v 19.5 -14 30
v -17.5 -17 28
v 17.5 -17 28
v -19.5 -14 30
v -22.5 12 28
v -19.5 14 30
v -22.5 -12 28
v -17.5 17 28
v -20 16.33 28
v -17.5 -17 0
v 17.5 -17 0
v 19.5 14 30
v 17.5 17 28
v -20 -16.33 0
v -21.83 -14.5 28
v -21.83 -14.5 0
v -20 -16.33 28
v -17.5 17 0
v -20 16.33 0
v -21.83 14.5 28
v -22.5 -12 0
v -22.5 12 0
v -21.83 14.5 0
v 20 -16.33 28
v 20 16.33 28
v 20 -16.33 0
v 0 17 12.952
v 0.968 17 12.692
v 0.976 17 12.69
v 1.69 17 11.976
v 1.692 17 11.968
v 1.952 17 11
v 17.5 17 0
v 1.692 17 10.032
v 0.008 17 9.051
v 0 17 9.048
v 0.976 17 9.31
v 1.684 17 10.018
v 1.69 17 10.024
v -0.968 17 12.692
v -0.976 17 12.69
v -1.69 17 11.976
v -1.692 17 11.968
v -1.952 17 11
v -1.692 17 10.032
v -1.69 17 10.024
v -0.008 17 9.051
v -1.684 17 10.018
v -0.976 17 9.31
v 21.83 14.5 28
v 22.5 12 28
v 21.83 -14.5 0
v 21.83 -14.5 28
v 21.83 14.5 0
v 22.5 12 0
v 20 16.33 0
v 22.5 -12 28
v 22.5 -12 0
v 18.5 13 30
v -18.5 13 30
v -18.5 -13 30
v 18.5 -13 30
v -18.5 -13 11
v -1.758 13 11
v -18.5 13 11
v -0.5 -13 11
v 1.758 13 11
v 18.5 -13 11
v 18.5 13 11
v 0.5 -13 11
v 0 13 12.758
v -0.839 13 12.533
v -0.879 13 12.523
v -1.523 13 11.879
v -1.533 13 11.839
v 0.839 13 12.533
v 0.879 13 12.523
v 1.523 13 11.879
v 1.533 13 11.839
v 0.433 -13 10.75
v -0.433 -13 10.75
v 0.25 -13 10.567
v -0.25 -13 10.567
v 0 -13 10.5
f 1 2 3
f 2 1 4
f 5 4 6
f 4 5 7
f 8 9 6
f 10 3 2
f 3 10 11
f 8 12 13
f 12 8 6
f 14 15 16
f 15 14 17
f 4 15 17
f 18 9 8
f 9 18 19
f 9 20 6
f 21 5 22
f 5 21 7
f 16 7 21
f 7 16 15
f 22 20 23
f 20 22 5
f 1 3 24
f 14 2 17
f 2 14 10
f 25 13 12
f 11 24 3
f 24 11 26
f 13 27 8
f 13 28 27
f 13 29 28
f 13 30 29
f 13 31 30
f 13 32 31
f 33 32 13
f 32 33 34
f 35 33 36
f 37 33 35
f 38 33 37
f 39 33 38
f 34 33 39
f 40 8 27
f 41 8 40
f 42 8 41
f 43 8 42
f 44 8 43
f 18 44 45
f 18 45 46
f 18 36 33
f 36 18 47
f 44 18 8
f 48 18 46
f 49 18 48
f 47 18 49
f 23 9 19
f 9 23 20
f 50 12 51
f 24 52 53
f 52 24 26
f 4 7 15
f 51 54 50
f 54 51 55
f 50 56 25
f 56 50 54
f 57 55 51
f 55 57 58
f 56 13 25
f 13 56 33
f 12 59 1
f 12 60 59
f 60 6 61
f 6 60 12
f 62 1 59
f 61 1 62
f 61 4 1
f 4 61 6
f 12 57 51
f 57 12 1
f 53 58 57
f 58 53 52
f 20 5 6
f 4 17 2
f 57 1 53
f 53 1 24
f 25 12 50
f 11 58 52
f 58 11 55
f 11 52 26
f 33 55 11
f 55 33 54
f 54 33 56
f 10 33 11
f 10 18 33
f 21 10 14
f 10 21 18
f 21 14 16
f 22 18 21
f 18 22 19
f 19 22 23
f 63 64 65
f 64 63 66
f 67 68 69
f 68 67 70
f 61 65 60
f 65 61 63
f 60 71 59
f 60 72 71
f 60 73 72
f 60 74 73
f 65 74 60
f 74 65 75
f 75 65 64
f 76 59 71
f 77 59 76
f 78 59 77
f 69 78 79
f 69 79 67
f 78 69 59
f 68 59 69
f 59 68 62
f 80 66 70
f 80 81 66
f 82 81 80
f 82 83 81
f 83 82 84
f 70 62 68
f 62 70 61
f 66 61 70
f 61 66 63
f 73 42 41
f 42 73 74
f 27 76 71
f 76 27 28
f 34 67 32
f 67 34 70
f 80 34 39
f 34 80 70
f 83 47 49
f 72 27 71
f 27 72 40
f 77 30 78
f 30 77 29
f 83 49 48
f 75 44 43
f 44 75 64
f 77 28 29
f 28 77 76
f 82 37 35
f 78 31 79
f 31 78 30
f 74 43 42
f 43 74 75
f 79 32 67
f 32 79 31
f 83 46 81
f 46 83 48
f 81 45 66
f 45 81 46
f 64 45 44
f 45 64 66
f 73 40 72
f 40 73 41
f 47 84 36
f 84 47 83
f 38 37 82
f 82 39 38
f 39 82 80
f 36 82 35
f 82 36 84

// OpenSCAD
/*
 * Leveling feet for a cheap wooden shed
 */

FOOT_X=35;
FOOT_Y=24;
FOOT_Z=30;
FOOT_THICKNESS=11;
//FOOT_THICKNESS=5.5;
//FOOT_THICKNESS=3;
FOOT_BUFFER=2;
WALL_THICKNESS=5;
GAP=4;

$fn=12;

module drain_hole(foot_thickness) {
    /*
    translate([-1.5, FOOT_Y/2, foot_thickness]) {
        cube([3, FOOT_Y, 3], center=false);
    }
    */
    translate([0, WALL_THICKNESS/2, foot_thickness]) {
        rotate([-90,0,0]) {
            cylinder(h=FOOT_Y + FOOT_BUFFER + WALL_THICKNESS, r1=0.5, r2=2, center=true);
        }
    }
}

module wood_foot(foot_thickness) {
    translate([0, 0, foot_thickness]) {
        linear_extrude(height=FOOT_Z) {
            square([FOOT_X+FOOT_BUFFER,FOOT_Y+FOOT_BUFFER], center=true);
        }
    }
}

module face() {
    minkowski() {
        square([FOOT_X,FOOT_Y], center=true);
        circle(d=WALL_THICKNESS*2);
    }
}

module foot() {
    difference() {
        hull() {
            linear_extrude(height=FOOT_Z-2) face();
            linear_extrude(height=FOOT_Z) square([FOOT_X+4, FOOT_Y+4], center=true);
        }
        // Subtrtact out the space where the wood foot goes
        wood_foot(FOOT_THICKNESS);
        drain_hole(FOOT_THICKNESS);
    }
}


foot();
